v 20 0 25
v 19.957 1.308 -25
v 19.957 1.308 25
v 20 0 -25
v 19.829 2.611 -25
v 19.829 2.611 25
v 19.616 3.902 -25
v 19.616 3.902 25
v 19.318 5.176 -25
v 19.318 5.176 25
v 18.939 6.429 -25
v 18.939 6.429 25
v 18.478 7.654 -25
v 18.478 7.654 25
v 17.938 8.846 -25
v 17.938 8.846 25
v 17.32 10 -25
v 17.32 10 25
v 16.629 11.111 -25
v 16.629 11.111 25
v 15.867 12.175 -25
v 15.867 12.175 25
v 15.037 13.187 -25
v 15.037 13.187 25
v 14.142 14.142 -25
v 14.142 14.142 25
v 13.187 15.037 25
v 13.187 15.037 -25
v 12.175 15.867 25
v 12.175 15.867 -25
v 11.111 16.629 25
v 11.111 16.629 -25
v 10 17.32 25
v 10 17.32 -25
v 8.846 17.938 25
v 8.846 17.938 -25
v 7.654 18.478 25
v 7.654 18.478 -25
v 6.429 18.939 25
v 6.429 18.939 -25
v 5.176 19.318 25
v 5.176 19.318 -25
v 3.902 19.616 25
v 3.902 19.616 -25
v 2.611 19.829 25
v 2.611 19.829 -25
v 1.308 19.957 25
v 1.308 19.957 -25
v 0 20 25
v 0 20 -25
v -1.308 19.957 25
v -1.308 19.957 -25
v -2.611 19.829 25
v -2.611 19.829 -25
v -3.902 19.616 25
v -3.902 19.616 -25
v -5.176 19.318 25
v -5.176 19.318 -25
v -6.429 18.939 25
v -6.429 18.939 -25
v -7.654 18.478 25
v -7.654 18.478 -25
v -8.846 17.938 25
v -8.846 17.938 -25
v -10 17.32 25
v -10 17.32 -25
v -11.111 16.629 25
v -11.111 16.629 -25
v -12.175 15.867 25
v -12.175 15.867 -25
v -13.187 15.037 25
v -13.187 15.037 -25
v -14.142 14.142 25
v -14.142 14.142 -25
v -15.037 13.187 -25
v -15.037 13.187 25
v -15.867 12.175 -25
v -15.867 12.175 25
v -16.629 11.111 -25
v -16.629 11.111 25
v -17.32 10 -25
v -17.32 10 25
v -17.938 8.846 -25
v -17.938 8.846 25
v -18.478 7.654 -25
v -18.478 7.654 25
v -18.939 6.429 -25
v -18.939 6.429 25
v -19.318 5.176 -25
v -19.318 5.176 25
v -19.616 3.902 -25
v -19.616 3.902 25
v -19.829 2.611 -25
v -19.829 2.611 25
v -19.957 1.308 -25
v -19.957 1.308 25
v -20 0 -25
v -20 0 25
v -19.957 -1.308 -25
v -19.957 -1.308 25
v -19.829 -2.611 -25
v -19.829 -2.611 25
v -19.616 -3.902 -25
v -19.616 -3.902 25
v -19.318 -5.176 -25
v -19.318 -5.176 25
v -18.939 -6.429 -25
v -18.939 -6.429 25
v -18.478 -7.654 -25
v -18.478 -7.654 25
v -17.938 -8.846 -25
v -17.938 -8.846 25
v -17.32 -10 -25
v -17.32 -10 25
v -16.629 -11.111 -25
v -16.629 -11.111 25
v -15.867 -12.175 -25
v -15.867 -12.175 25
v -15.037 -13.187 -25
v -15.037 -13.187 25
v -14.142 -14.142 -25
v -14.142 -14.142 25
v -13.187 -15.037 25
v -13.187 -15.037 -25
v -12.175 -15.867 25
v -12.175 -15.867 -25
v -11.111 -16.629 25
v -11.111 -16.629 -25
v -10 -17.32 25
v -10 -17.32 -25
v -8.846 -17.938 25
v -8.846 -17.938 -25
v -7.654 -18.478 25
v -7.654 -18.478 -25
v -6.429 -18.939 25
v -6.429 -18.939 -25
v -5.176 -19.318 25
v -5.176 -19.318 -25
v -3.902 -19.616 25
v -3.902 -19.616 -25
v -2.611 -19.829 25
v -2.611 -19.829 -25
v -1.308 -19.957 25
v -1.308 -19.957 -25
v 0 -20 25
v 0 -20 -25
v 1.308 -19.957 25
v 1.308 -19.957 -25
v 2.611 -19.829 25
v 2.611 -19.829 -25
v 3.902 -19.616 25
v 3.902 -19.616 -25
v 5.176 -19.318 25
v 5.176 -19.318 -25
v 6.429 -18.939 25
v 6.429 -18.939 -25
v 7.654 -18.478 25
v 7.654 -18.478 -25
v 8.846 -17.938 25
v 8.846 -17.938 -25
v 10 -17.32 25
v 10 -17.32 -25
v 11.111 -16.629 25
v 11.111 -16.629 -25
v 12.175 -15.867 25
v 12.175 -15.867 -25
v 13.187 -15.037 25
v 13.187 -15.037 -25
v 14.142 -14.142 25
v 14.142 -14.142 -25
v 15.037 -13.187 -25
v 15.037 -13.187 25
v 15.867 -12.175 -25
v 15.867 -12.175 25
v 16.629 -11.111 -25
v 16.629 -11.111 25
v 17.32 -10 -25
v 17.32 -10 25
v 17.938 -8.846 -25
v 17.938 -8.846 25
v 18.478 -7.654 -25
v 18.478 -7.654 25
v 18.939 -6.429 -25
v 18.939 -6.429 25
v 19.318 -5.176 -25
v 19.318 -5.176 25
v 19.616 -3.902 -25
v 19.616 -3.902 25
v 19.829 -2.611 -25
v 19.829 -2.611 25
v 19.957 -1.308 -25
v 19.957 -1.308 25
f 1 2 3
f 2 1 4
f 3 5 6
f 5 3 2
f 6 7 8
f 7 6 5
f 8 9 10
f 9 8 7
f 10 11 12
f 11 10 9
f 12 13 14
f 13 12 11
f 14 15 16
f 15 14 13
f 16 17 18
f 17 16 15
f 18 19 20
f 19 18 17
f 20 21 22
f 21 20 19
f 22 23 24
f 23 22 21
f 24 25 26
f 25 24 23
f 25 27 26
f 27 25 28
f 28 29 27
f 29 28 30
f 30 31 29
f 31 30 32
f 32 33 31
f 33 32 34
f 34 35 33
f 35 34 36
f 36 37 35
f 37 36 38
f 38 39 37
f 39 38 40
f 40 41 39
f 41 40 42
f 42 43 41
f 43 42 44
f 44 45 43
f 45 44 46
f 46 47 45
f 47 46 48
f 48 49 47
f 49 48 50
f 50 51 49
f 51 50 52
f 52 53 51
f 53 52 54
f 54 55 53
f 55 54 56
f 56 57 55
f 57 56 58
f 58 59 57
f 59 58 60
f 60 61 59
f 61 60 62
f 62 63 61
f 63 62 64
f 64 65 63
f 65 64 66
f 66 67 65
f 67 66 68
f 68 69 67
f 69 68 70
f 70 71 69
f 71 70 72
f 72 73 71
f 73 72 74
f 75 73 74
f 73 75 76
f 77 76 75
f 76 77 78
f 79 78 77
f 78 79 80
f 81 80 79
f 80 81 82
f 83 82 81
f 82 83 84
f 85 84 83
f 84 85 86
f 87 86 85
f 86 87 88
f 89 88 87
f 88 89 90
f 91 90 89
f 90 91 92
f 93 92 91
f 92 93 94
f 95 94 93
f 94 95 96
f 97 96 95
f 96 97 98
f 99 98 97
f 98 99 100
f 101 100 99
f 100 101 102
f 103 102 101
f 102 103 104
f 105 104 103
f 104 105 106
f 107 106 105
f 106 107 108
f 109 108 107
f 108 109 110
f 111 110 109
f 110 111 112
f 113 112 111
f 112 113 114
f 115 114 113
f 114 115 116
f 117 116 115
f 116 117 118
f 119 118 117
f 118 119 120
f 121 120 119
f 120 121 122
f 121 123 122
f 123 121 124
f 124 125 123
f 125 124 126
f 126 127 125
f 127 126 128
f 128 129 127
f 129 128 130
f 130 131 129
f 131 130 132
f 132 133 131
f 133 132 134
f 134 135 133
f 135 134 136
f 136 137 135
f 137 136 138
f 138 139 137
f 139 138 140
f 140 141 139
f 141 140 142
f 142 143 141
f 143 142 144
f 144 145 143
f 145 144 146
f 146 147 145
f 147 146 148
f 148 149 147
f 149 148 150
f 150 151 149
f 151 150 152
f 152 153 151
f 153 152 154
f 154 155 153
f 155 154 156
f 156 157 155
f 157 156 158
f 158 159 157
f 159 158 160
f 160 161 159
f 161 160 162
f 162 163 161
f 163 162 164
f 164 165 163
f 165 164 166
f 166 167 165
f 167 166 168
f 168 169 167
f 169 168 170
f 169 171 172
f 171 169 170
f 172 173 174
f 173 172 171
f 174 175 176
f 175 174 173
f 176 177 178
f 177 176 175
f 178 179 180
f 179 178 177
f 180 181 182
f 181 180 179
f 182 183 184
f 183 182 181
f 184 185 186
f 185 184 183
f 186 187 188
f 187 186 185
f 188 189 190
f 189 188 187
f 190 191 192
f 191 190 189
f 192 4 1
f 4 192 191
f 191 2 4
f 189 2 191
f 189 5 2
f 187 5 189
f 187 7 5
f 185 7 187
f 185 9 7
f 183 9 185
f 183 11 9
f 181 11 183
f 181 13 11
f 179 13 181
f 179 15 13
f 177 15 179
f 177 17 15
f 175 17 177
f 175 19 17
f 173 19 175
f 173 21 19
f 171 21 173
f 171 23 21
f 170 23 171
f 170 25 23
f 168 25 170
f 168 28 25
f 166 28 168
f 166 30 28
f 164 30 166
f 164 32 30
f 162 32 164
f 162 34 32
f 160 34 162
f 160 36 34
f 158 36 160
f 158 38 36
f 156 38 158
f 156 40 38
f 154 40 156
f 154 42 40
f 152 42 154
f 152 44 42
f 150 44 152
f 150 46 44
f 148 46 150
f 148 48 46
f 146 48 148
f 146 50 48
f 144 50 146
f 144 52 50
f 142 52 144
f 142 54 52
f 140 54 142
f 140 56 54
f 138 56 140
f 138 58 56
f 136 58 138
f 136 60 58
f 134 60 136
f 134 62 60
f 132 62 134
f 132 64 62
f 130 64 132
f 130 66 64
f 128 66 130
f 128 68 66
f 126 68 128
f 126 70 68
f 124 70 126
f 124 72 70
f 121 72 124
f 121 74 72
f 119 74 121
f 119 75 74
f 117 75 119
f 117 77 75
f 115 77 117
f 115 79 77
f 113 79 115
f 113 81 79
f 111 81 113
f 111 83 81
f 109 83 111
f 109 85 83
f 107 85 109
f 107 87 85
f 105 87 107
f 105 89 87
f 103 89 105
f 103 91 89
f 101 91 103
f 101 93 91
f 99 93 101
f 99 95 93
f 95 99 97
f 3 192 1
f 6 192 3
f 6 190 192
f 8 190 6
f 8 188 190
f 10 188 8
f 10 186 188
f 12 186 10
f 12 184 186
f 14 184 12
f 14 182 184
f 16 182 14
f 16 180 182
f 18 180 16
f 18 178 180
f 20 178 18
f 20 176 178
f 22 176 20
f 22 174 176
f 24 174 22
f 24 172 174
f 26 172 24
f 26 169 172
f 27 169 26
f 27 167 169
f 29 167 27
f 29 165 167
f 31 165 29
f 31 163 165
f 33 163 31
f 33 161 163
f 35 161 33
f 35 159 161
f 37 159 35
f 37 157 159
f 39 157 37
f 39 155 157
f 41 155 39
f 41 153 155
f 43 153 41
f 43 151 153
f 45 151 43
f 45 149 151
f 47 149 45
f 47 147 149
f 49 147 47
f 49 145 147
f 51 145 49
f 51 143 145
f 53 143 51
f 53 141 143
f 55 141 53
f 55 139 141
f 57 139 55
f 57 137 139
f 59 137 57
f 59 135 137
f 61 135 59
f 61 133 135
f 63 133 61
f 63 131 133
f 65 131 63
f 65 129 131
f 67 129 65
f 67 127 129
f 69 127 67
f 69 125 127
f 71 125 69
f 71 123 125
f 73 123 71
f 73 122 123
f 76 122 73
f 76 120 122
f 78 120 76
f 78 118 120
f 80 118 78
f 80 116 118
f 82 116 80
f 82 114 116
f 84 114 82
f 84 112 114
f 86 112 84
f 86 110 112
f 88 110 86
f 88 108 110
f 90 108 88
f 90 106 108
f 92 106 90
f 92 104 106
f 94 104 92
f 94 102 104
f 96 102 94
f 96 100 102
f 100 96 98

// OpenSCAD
// ========================================
// a cylinder with radius 20 mm and height 50 mm
// NeuroCAD canonical IR; dimensions are millimetres
// ========================================
$fn = 96;

cylinder(r=20, h=50, center=true);
